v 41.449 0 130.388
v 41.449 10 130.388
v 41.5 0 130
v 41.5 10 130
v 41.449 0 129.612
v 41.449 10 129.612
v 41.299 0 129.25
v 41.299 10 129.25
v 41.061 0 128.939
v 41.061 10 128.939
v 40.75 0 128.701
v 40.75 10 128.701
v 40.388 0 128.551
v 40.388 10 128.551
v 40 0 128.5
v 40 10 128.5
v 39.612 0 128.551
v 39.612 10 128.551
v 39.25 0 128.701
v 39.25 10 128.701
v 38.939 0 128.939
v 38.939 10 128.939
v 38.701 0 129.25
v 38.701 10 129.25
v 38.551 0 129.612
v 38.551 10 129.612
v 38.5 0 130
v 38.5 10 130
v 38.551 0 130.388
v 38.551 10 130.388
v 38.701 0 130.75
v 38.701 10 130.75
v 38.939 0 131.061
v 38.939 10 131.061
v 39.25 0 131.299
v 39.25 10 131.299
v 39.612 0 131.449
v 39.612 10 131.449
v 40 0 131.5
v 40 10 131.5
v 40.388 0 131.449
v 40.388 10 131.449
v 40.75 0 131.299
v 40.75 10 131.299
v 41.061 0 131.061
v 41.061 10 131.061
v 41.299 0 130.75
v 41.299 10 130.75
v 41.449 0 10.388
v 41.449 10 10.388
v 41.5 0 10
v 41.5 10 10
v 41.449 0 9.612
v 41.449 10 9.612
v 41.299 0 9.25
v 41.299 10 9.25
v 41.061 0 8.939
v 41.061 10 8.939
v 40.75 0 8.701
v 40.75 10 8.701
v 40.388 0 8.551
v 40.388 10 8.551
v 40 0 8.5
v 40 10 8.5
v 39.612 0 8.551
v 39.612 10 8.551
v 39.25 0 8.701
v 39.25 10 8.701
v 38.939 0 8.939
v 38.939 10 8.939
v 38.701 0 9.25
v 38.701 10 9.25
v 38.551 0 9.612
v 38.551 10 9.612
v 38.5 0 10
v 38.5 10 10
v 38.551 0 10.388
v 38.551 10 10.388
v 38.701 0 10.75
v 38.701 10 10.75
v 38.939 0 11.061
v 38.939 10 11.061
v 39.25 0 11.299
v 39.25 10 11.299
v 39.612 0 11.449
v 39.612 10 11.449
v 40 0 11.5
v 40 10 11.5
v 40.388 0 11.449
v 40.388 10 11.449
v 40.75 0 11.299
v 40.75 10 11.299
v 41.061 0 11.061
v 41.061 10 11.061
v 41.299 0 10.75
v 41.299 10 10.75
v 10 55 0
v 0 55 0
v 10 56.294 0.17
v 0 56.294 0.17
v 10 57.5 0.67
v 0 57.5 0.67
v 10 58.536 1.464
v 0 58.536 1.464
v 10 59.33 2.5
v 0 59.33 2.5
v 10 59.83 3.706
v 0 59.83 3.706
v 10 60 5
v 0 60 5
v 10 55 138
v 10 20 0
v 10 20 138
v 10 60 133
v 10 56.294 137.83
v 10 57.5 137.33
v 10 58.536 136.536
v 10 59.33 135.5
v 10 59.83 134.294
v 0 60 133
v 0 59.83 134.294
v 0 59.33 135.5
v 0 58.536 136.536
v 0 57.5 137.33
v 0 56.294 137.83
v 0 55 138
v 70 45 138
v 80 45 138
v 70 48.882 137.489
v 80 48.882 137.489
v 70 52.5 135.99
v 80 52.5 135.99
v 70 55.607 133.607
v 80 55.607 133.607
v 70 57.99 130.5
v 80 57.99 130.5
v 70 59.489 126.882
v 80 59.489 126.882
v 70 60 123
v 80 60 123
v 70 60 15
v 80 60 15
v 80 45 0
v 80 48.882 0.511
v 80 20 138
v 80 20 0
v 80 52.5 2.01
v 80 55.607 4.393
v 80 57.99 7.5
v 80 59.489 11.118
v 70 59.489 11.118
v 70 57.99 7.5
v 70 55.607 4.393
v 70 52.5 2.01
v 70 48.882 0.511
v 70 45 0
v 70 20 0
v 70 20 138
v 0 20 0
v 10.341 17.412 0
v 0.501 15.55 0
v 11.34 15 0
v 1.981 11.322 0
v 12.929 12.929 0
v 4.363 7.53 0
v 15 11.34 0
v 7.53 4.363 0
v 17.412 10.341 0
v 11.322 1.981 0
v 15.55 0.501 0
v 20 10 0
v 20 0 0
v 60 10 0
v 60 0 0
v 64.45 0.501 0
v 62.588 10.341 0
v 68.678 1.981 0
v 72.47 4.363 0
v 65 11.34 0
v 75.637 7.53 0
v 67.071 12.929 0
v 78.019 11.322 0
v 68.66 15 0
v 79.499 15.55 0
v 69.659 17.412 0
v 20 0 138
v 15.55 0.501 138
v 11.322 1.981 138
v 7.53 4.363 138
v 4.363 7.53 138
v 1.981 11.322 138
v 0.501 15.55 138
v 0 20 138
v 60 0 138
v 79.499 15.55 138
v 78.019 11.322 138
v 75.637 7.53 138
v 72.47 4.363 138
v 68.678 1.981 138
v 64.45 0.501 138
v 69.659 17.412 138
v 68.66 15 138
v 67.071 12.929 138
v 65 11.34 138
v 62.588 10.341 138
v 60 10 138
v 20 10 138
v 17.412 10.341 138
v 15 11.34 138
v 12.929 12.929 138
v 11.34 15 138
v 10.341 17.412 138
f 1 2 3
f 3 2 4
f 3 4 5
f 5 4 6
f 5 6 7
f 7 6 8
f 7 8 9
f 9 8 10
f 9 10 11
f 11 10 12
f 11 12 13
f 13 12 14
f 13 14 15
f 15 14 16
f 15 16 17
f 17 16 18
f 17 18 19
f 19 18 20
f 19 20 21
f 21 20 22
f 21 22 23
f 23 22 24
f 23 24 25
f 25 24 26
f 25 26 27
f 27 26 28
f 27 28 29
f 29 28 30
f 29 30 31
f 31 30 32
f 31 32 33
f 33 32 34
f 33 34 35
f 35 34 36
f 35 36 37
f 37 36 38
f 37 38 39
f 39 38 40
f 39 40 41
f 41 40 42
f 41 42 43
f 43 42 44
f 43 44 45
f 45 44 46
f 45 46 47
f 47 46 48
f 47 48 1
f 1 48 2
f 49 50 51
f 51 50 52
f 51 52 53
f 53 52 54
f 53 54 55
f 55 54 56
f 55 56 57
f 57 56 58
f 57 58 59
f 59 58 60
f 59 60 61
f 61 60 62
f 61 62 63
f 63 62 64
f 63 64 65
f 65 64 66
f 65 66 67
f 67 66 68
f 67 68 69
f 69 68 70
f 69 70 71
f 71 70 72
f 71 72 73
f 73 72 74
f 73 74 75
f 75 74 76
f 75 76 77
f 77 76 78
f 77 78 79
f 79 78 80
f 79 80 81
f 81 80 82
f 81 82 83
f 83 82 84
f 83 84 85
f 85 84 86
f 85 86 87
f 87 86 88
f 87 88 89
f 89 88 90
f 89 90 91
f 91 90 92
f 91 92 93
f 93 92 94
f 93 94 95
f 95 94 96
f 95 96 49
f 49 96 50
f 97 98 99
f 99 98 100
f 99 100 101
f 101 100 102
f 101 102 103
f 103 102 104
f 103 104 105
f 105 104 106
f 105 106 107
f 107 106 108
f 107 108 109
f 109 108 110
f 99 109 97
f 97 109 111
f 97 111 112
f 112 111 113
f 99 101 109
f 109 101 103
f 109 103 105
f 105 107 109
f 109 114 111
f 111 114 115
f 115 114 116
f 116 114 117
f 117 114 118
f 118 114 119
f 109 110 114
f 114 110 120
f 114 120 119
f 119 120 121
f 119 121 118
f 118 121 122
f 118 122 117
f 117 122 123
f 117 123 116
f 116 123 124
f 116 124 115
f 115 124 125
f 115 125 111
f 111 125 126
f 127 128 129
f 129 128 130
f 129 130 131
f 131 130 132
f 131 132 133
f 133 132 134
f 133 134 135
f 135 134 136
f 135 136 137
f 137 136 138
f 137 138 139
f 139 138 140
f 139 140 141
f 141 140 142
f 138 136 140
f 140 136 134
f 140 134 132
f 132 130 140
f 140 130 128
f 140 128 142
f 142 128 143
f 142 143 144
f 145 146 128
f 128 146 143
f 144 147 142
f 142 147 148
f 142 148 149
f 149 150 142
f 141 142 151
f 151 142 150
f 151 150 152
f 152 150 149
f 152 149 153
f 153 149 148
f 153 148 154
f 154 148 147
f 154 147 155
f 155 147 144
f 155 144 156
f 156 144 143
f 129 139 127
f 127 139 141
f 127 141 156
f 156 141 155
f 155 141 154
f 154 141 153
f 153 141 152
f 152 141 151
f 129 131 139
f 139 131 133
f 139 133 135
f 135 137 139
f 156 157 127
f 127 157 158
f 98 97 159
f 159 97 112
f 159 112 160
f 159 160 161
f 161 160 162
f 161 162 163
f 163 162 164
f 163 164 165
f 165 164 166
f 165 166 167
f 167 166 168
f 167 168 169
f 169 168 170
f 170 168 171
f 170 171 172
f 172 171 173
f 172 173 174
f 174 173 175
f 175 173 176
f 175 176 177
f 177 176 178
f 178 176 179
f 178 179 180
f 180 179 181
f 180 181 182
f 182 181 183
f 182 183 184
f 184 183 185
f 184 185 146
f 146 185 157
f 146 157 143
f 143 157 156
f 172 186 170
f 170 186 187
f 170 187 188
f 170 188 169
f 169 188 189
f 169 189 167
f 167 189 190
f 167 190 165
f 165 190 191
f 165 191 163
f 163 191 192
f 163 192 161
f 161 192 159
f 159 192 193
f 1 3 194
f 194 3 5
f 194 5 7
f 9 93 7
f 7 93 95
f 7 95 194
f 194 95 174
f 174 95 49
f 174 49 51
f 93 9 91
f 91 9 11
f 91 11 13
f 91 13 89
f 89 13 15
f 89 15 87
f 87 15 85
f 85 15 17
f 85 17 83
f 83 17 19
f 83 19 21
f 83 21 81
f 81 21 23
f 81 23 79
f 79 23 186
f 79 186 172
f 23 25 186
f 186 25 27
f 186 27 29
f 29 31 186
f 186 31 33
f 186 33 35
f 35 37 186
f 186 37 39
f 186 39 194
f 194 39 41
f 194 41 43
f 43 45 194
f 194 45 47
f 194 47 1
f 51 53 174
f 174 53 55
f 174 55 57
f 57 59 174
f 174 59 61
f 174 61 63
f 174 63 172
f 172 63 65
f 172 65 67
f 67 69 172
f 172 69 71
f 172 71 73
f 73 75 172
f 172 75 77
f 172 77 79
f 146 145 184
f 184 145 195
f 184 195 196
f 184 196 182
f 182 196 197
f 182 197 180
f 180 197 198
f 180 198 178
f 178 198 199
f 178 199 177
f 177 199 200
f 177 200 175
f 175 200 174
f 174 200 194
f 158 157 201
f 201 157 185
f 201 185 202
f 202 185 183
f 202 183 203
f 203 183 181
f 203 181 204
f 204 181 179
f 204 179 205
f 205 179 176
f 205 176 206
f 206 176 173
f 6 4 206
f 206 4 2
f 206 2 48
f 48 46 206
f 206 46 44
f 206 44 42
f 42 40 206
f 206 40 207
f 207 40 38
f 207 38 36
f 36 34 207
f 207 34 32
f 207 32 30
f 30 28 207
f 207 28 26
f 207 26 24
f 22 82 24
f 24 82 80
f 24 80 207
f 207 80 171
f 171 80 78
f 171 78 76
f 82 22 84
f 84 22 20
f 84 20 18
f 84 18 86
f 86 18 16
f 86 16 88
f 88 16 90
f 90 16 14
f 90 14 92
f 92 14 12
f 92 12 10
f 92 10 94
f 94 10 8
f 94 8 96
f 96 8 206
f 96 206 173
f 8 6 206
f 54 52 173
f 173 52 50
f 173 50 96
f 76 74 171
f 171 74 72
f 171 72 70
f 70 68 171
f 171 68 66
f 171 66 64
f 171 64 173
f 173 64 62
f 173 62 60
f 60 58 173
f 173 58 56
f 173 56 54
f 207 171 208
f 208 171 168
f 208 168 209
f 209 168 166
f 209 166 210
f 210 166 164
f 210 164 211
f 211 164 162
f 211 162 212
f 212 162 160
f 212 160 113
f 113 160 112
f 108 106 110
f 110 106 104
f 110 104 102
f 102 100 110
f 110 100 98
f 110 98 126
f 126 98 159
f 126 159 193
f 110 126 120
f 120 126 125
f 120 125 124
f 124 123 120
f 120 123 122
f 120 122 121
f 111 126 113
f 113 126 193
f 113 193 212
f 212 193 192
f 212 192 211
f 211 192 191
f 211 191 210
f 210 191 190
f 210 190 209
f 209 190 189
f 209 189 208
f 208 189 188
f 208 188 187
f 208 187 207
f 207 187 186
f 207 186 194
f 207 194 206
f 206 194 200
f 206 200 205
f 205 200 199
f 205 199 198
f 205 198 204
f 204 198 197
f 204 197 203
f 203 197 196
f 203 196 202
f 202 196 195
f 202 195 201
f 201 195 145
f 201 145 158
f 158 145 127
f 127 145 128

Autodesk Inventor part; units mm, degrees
ref_plane "YZ Plane" through (0, 0, 0) normal (1, 0, 0) x (0, 1, 0)
ref_plane "XZ Plane" through (0, 0, 0) normal (0, 1, 0) x (-1, 0, 0)
ref_plane "XY Plane" through (0, 0, 0) normal (0, 0, 1) x (1, 0, 0)
sketch "Sketch1" plane through (0, 0, 0) normal (0, 0, 1) x (1, 0, 0)
  line L0 (0, 0) -> (80, 0)
  line L1 (80, 0) -> (80, 60)
  line L2 (80, 60) -> (0, 60)
  line L3 (0, 60) -> (0, 0)
  dimension "d0" = 80
  dimension "d1" = 60
extrude "Extrusion1" add sketch "Sketch1" along normal blind 138
shell "Shell1" thickness 10 removed faces 3 at (53.3333, 60, 46) at (26.6667, 40, 138) at (26.6667, 40, 0)
fillet "Fillet1" radius 10 2 edges at (10, 10, 69) (70, 10, 69)
fillet "Fillet2" radius 20 1 edges at (80, 0, 69)
fillet "Fillet3" radius 20 1 edges at (0, 0, 69)
sketch "Sketch2" plane through (80, 60, 138) normal (1, 0, 0) x (0, 0, -1)
  point P0 (138, -60)
fillet "Fillet4" radius 15 1 edges at (75, 60, 0)
fillet "Fillet5" radius 15 1 edges at (75, 60, 138)
fillet "Fillet6" radius 5 1 edges at (5, 60, 138)
fillet "Fillet7" radius 5 1 edges at (5, 60, 0)
sketch "Sketch5" plane through (20, 10, 0) normal (0, 1, 0) x (1, 0, 0)
  line L0 (40, -138) -> (0, -138) projected
  line L1 (0, 0) -> (40, 0) projected
  circle A0 centre (20, -130) radius 1.5
  circle A1 centre (20, -10) radius 1.5
  point P0 (-20, 0)
  dimension "d13" = 3
  dimension "d15" = 3
extrude "Extrusion2" cut sketch "Sketch5" against normal through all
thread "Thread1" size "M3x0.5" class "6H" standard "ANSI Metric M Profile" full length
thread "Thread2" size "M3x0.5" class "6H" standard "ANSI Metric M Profile" full length
sketch "Sketch6" plane through (20, 10, 0) normal (0, 1, 0) x (1, 0, 0)
  point P0 (-20, 0)
properties part number "BREAD"
